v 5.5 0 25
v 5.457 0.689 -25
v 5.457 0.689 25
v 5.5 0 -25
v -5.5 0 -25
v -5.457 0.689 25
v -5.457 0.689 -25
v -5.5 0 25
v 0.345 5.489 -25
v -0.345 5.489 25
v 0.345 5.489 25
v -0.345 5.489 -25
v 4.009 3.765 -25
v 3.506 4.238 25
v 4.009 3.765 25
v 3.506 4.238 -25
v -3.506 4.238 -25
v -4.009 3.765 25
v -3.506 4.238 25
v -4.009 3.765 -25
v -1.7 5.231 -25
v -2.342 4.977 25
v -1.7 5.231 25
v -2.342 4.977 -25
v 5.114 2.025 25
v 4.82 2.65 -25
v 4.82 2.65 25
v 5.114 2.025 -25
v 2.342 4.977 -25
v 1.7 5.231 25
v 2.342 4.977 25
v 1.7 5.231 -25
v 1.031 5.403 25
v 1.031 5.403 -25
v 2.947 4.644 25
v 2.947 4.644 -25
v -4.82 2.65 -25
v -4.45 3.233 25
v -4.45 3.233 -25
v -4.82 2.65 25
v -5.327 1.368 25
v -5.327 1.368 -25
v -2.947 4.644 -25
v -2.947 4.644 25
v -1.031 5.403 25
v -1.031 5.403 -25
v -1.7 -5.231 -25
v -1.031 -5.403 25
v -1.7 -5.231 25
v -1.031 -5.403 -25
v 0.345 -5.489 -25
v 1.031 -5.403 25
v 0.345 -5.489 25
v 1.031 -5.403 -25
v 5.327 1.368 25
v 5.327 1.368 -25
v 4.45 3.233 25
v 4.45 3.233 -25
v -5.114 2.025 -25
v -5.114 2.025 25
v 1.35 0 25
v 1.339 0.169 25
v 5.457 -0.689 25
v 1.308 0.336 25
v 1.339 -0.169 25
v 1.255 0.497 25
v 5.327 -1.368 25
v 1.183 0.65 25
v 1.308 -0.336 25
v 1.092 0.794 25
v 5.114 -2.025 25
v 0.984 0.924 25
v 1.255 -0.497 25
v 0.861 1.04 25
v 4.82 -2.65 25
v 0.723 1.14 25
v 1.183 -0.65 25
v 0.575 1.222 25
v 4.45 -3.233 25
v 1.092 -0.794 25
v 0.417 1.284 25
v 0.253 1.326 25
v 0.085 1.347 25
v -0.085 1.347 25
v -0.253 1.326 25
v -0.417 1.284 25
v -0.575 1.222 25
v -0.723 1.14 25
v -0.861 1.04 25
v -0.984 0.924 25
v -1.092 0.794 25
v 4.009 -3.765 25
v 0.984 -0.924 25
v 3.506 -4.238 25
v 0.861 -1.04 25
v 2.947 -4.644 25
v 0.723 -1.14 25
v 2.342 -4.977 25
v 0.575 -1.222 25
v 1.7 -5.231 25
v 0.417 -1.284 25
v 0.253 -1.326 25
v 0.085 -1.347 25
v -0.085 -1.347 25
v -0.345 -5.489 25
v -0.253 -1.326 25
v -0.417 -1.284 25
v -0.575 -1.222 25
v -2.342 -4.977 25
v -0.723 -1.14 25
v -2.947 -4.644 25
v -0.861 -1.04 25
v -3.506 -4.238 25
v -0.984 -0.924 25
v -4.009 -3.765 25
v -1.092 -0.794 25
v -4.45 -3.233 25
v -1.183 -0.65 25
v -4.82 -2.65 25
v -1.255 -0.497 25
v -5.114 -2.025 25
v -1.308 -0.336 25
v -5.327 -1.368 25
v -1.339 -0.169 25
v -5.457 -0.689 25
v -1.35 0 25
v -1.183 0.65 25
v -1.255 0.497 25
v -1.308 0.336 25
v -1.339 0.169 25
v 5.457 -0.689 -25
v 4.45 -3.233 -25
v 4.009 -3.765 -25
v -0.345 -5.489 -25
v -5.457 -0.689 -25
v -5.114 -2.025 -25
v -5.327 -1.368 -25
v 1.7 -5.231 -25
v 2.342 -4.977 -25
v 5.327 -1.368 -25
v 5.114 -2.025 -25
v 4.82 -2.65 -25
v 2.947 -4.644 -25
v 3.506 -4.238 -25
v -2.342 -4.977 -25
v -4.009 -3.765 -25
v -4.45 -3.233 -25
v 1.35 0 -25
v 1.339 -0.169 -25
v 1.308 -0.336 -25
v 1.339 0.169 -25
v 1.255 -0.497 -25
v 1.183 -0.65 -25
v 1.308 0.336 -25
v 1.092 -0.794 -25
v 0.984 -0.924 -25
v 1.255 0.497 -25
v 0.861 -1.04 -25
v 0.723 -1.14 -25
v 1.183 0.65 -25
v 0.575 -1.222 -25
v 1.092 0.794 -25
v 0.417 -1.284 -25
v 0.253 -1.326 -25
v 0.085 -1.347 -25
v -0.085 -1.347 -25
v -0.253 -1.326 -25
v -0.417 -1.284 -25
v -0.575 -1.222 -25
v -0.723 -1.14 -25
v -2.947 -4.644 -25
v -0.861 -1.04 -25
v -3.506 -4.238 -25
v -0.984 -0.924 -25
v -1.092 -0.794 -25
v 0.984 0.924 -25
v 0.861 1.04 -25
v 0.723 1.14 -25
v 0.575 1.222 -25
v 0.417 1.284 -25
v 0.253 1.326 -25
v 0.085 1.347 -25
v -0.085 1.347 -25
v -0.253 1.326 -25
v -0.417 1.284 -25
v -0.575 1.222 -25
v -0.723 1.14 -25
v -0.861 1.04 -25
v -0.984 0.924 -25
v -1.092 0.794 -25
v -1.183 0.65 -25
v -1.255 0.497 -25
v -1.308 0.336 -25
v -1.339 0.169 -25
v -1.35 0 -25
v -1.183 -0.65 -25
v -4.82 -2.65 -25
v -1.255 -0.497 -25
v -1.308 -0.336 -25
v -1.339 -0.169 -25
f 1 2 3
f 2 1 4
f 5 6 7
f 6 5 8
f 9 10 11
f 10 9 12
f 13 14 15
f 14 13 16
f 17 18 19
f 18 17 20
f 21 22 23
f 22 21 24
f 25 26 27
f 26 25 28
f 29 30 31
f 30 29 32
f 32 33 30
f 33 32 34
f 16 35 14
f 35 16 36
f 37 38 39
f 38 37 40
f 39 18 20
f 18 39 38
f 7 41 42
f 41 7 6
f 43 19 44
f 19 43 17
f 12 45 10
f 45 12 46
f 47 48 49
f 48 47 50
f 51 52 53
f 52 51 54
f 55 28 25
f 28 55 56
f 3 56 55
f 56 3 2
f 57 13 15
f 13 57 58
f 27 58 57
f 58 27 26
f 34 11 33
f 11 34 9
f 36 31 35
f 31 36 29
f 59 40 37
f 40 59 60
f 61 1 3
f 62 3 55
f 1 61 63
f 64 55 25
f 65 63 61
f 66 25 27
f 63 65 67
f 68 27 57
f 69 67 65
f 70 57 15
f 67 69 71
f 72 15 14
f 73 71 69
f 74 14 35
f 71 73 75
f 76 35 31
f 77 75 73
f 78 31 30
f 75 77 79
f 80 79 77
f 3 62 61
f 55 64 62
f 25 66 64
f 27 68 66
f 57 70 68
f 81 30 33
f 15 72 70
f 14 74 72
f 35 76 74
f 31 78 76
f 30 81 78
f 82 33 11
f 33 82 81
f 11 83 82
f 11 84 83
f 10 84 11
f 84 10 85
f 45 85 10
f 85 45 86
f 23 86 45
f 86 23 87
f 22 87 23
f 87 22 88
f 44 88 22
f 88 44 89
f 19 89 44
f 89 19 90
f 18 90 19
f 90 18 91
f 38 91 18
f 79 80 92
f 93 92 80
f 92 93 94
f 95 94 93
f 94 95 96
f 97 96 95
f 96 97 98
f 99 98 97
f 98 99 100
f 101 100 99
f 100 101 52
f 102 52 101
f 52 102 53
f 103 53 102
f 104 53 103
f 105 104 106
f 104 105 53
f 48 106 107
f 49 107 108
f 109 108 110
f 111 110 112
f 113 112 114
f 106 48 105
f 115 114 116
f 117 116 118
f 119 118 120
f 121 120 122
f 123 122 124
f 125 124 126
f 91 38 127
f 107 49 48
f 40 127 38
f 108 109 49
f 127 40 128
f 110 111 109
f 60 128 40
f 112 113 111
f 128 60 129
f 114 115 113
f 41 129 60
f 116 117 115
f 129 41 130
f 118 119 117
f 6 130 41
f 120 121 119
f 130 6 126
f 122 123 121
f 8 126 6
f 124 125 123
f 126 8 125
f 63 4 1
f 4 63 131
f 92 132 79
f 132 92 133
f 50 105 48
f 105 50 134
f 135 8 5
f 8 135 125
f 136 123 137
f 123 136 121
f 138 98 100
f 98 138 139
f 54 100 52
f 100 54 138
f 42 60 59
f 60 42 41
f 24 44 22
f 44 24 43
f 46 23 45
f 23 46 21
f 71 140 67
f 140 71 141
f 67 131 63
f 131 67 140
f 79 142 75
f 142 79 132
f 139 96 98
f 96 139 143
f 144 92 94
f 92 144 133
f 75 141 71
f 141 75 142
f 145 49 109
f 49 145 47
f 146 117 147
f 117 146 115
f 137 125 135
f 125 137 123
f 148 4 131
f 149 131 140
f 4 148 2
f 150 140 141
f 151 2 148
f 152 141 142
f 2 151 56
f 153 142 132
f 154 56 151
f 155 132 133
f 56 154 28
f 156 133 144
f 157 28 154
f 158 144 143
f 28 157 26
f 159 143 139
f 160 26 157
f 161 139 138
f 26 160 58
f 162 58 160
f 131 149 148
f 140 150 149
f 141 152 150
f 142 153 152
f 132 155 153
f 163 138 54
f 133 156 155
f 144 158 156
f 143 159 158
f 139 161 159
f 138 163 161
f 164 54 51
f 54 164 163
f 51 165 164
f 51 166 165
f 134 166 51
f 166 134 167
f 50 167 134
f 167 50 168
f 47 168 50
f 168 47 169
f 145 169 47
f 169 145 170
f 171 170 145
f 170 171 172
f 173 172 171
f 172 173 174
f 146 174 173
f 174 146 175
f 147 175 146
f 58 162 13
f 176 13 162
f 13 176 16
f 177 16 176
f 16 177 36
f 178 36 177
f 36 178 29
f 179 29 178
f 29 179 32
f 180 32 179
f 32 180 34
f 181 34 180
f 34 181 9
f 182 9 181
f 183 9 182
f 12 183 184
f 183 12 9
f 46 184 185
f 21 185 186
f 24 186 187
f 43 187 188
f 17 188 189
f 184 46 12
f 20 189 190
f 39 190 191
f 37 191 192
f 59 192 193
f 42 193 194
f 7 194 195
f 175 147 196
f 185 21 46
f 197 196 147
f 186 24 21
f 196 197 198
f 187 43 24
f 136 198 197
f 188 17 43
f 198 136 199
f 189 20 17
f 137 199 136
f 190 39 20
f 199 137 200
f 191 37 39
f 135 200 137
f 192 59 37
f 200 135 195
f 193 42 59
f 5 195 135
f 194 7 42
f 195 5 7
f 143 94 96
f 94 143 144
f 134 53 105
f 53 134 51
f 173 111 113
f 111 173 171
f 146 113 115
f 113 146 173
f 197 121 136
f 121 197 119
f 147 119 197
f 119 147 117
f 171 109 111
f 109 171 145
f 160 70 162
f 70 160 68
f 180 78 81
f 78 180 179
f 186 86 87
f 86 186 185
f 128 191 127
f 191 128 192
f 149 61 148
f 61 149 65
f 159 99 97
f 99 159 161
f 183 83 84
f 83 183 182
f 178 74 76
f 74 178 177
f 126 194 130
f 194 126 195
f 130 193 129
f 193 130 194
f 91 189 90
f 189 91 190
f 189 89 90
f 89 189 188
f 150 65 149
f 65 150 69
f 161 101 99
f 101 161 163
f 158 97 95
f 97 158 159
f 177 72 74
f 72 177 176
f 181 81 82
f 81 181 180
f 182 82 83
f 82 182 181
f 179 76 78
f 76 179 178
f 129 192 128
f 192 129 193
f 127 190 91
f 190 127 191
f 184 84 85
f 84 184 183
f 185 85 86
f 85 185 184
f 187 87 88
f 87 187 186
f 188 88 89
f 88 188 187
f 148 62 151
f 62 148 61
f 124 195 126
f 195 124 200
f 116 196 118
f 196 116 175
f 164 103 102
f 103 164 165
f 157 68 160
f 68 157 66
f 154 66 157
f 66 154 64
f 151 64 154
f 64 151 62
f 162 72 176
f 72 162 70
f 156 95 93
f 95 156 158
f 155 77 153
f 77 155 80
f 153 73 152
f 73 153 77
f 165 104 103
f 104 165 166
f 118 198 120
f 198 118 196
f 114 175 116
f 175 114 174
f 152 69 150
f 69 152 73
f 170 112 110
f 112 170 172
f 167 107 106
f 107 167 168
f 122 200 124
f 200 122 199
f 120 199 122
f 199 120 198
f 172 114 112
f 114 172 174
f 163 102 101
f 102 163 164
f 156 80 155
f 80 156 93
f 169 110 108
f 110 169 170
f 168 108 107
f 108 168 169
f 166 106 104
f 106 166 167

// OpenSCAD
$fn = 50;


difference() {
	union() {
		translate(v = [0, 0, -25.0000000000]) {
			cylinder(h = 50, r = 5.5000000000);
		}
	}
	union() {
		translate(v = [0, 0, -100.0000000000]) {
			cylinder(h = 200, r = 1.3500000000);
		}
	}
}
